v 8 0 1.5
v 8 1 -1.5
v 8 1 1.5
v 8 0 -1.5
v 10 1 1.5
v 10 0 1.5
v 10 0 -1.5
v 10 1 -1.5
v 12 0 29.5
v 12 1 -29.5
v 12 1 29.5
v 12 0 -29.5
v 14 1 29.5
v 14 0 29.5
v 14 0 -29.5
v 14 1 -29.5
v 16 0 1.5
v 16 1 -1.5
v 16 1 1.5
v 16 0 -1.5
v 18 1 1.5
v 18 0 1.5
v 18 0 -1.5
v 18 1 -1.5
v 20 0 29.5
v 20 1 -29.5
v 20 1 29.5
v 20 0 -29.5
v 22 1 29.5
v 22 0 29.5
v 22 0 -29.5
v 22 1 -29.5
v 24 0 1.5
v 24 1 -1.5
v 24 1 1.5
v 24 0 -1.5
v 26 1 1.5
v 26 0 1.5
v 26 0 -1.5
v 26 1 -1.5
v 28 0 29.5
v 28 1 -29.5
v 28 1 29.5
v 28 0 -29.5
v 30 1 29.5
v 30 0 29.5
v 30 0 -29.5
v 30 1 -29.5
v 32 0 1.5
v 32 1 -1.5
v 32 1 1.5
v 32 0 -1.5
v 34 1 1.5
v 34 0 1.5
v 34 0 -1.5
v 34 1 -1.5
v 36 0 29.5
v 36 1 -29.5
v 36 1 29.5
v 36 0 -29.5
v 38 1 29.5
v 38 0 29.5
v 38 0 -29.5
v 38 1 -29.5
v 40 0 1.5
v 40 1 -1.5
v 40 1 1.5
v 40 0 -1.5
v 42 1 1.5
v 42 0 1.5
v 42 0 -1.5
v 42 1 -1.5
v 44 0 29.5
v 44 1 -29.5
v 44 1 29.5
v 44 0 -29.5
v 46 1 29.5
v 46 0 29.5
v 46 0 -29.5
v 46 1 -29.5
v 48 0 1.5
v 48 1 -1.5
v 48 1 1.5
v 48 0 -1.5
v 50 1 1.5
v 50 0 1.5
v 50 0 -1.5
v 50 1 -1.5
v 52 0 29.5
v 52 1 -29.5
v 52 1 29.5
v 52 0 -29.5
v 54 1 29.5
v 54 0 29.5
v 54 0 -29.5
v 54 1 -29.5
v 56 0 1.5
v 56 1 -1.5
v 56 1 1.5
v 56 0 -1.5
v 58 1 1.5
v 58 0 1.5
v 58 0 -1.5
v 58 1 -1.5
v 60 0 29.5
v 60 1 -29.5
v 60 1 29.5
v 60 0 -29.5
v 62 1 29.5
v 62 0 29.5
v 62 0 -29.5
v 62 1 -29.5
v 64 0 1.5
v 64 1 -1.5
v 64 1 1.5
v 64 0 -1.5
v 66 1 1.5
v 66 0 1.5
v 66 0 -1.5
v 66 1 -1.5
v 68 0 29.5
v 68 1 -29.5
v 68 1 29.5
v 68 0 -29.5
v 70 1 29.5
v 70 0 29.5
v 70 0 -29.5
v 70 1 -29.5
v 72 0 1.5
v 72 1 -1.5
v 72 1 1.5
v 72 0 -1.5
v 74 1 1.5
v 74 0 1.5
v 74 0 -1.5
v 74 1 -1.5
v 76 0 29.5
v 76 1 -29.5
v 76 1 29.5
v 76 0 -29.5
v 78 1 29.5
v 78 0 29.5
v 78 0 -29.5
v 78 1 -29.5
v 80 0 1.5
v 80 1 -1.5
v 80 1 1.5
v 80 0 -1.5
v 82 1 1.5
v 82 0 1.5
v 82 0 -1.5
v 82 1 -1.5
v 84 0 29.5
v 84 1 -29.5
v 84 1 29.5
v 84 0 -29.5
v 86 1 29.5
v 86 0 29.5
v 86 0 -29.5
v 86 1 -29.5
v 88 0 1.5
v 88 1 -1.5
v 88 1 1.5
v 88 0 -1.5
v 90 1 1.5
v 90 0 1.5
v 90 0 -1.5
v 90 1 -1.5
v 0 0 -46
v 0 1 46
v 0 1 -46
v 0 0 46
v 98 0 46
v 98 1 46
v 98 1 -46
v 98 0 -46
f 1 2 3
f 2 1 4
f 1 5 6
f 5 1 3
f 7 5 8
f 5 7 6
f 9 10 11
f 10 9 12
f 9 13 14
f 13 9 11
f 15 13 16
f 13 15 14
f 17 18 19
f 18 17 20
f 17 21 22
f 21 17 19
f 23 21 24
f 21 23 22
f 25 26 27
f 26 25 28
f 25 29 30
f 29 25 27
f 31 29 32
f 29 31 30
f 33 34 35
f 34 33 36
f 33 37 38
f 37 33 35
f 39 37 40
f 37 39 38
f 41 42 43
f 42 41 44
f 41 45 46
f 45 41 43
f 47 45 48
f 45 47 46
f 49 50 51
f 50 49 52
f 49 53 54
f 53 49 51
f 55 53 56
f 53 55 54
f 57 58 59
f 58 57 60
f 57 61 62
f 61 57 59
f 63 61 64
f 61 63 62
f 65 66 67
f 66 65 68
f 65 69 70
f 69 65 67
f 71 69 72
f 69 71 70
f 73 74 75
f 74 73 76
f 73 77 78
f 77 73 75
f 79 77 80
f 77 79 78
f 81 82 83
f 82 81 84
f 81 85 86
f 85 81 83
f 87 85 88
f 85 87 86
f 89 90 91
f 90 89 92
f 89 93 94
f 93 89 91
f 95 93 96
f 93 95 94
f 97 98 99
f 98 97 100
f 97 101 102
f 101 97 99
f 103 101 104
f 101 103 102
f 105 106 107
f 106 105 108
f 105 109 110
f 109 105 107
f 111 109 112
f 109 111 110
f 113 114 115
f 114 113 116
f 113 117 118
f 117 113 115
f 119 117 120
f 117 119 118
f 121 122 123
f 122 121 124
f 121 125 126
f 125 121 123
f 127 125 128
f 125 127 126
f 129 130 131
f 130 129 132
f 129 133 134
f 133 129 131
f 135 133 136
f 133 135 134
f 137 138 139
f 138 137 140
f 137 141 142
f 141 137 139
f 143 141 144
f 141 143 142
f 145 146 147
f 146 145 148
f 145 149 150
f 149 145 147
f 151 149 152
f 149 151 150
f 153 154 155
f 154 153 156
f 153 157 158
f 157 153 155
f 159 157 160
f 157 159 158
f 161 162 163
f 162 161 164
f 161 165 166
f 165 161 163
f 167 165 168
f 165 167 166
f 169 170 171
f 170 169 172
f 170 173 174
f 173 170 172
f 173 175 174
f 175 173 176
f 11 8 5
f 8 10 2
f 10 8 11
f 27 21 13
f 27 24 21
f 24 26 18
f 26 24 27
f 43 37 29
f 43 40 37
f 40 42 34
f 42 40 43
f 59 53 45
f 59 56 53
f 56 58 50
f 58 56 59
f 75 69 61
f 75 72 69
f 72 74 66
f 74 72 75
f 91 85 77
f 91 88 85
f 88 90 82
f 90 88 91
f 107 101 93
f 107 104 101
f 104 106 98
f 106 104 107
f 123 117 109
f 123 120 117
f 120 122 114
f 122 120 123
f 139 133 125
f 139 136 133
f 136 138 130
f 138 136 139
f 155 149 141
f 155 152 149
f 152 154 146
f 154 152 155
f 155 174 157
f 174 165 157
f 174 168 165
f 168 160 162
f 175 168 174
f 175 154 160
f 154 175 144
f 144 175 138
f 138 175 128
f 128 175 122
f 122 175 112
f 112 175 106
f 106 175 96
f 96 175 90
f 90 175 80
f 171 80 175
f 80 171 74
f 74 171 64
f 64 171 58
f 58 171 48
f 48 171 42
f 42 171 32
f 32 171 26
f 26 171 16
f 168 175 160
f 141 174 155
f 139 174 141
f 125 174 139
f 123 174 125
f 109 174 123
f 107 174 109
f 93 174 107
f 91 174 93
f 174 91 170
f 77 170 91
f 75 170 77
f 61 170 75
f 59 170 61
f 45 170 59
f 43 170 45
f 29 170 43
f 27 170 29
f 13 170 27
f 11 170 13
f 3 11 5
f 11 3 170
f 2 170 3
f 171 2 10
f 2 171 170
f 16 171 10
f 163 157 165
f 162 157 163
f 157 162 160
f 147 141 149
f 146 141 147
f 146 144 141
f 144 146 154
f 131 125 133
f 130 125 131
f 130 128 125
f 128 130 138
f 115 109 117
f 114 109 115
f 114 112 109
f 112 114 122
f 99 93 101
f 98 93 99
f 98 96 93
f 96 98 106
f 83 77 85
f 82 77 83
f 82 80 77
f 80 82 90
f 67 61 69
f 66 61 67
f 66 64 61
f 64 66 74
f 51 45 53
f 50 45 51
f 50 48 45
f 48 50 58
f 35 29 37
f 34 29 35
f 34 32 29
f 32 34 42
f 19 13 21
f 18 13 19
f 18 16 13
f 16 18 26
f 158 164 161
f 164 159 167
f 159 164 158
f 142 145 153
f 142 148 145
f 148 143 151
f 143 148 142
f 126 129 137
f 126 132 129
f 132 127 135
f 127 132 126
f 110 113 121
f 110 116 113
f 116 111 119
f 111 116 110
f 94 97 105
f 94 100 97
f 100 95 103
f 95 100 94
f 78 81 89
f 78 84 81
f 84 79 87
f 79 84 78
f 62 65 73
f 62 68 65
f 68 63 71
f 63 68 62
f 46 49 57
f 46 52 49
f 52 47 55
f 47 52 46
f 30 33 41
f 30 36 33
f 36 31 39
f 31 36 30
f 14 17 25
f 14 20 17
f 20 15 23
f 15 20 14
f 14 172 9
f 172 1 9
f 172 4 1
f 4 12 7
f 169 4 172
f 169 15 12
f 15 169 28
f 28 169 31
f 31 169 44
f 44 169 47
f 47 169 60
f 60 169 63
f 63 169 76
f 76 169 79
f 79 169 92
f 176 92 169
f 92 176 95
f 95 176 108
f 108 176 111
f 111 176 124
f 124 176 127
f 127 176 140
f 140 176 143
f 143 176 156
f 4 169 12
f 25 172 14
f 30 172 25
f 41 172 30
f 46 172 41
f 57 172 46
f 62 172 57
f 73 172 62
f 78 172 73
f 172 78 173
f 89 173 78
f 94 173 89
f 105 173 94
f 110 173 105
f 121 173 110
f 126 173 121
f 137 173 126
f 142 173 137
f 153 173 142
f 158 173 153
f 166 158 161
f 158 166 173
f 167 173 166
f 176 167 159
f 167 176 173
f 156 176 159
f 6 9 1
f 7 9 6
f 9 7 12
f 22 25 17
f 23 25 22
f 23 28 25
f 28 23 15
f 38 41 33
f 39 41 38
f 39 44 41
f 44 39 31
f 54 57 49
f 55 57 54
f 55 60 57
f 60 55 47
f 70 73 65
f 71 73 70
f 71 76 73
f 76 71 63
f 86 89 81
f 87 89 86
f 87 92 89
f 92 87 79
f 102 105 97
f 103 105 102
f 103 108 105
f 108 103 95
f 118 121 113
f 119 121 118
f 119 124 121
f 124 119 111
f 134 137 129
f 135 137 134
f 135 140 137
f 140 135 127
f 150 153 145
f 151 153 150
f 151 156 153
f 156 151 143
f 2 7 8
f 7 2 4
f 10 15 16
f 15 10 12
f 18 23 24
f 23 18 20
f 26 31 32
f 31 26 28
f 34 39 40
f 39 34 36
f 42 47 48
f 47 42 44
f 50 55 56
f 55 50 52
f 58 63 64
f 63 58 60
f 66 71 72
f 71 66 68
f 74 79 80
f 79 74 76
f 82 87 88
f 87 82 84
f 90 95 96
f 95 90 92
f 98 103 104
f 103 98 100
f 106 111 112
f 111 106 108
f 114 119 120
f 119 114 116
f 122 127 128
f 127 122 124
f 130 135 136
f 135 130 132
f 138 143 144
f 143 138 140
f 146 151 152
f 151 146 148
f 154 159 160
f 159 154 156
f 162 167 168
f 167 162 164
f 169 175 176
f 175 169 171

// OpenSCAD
cantidadUrdimbre = 21;
separacion = 4;
borde = 8;
grosorRendijas = 2;
alturaRendijas = 30;

union(){
    difference(){
        cube([borde*2+separacion*(cantidadUrdimbre-1)+grosorRendijas,1,alturaRendijas+borde*2]);
        for(i=[0:(cantidadUrdimbre-1)]){
            translate([i*separacion + borde,-0.5,-0.5]) {
            if (i % 2 == 0) cube([grosorRendijas,3,grosorRendijas]);
                else cube([grosorRendijas,3,alturaRendijas]);
            }
        }
    }
}
mirror([0,0,1]){
    difference(){
        cube([borde*2+separacion*(cantidadUrdimbre-1)+grosorRendijas,1,alturaRendijas+borde*2]);
        for(i=[0:(cantidadUrdimbre-1)]){
            translate([i*separacion + borde,-0.5,-0.5]) {
            if (i % 2 == 0) cube([grosorRendijas,3,grosorRendijas]);
                else cube([grosorRendijas,3,alturaRendijas]);
            }
        }
    }
}
